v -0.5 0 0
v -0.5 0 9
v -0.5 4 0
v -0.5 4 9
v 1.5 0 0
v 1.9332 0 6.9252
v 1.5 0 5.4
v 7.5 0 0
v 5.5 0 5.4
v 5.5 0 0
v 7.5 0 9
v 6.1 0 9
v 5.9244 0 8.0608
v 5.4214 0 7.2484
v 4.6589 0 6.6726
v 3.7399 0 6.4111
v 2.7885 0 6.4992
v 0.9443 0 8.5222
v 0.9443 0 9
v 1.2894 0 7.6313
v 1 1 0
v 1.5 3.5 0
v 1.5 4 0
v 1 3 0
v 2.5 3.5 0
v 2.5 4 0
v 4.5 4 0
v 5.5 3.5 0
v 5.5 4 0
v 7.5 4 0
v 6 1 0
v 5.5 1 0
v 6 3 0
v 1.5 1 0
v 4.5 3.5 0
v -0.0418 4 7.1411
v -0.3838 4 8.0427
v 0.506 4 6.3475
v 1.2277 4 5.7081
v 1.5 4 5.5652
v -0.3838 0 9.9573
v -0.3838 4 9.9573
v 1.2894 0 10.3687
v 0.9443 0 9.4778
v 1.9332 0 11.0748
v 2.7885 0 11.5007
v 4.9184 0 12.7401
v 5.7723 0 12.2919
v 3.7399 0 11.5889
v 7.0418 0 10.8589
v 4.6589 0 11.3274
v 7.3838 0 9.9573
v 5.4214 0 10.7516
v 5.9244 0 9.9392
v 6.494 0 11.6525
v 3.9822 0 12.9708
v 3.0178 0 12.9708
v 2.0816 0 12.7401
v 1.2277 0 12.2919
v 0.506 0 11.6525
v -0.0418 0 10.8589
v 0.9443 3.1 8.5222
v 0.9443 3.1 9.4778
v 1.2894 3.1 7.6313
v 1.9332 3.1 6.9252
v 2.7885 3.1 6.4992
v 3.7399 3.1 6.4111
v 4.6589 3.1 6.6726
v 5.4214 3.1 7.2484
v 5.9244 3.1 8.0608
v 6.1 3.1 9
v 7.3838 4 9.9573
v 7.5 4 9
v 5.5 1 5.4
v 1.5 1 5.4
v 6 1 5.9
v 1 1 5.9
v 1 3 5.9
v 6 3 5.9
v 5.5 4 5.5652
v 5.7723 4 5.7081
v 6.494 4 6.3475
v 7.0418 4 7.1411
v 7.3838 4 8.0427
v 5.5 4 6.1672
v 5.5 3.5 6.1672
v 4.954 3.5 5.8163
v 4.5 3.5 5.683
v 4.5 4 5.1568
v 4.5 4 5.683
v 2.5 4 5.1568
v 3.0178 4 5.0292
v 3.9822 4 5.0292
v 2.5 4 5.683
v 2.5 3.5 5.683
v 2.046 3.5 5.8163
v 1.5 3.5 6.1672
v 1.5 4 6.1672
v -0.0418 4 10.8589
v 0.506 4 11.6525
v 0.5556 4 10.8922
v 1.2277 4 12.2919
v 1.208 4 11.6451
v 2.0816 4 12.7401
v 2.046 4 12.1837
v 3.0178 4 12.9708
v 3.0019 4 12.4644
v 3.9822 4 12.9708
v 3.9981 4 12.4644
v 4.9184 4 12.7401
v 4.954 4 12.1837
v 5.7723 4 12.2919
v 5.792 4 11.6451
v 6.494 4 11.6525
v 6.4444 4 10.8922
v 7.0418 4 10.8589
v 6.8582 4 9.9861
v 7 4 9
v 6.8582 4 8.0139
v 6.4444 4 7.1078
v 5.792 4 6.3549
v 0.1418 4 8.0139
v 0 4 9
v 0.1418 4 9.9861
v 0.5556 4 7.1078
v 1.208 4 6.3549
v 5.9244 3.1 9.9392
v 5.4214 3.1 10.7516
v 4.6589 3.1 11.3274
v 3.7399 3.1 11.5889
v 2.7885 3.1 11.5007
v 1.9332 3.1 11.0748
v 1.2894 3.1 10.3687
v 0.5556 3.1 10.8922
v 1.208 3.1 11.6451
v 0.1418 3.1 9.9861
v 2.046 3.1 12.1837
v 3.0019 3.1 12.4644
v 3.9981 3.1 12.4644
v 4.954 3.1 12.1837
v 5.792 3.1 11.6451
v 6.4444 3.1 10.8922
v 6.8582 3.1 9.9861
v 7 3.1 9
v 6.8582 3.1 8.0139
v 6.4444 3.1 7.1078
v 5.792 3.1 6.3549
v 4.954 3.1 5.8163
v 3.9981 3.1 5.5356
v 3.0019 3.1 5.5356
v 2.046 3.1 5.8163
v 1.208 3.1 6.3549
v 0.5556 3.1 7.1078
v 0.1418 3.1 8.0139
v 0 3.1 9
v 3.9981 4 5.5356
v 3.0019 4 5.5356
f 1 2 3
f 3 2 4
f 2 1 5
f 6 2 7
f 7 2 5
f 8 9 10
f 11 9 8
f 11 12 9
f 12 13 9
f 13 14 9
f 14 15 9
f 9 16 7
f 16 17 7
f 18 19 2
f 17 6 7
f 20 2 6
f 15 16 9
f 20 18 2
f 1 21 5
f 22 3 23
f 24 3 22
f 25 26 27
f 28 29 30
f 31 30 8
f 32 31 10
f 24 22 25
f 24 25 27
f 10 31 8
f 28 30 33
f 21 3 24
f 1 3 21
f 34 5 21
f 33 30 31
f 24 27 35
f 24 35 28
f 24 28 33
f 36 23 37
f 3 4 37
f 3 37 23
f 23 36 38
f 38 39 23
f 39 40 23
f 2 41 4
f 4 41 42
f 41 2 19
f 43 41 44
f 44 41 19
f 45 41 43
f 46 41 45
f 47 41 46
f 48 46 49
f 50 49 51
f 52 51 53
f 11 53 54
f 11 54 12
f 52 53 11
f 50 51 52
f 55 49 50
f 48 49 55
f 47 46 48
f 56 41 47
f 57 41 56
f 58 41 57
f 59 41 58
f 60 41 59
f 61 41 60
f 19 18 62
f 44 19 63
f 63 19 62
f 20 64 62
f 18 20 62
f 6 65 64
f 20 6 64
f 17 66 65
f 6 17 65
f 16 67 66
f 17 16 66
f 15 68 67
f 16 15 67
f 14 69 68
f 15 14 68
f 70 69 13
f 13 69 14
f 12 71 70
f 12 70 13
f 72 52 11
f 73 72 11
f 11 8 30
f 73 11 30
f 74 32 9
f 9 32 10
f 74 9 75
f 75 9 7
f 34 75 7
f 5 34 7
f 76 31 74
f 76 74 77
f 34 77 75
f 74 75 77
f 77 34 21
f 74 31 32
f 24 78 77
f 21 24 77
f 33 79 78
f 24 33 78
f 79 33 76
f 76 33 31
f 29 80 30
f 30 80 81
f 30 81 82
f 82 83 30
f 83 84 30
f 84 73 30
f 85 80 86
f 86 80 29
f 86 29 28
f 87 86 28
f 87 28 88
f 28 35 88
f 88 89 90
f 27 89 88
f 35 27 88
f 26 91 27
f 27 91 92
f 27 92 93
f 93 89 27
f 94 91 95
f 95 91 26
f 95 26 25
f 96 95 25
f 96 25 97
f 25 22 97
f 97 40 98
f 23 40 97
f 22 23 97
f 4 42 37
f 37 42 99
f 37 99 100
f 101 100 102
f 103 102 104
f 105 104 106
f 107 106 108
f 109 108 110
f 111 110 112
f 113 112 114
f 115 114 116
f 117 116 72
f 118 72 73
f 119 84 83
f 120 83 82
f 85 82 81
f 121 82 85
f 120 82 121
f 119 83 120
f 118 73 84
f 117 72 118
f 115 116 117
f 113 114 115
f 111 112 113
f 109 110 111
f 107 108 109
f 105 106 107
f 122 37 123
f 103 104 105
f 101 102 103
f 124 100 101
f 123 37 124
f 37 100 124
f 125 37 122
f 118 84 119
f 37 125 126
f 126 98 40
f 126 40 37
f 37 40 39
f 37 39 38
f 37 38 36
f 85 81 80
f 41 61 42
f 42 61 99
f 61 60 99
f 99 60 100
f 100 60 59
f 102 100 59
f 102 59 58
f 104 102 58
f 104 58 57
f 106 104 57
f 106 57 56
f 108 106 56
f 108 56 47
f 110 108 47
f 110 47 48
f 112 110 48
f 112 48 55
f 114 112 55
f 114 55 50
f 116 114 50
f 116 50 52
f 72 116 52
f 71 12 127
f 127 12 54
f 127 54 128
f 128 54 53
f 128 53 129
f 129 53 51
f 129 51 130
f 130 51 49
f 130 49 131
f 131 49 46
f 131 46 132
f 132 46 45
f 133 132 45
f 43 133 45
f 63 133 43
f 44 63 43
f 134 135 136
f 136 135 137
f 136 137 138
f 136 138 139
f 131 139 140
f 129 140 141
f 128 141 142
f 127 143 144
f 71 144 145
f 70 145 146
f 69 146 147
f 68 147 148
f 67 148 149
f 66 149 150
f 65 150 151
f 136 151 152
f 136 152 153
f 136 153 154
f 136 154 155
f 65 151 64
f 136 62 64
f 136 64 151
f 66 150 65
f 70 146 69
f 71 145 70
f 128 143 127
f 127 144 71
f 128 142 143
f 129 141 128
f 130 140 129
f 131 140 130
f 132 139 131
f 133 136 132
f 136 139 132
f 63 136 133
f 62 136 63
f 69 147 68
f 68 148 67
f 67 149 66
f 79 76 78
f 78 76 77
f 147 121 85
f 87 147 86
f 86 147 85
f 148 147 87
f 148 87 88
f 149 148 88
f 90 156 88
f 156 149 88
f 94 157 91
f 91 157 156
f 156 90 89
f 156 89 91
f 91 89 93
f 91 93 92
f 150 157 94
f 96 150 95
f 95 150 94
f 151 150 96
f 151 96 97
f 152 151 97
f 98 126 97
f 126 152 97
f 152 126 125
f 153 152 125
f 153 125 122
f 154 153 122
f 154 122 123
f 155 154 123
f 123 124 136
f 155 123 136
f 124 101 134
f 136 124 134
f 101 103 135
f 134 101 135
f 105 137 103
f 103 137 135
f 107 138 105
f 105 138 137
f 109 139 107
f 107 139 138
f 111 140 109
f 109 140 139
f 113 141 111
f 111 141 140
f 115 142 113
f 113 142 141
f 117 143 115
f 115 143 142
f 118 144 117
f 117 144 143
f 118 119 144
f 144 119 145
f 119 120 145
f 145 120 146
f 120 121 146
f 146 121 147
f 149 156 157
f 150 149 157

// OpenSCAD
$fa = 1;
$fs = 1;

difference()
{
	translate([-0.5,0,0])
	union()
	{
		cube([8,4,9]);
	translate([4, 0, 9]) rotate([-90,0,0]) cylinder(r=4, h=4);
	}
	translate([1, 1, -0.1]) cube([5, 2, 6]);
	translate([1.5, -0.1, -0.1]) cube([4, 2.1, 5.5]);
	translate([3.5, -0.1, 9]) rotate([-90,0,0]) cylinder(r=2.6, h=8);
	translate([3.5, 3.1, 9]) rotate([-90,0,0]) cylinder(r=3.5, h=8);
	translate([1.5,3.5,-0.1])cube([1,0.6,10]);
	translate([4.5,3.5,-0.1])cube([1,0.6,10]);

}
